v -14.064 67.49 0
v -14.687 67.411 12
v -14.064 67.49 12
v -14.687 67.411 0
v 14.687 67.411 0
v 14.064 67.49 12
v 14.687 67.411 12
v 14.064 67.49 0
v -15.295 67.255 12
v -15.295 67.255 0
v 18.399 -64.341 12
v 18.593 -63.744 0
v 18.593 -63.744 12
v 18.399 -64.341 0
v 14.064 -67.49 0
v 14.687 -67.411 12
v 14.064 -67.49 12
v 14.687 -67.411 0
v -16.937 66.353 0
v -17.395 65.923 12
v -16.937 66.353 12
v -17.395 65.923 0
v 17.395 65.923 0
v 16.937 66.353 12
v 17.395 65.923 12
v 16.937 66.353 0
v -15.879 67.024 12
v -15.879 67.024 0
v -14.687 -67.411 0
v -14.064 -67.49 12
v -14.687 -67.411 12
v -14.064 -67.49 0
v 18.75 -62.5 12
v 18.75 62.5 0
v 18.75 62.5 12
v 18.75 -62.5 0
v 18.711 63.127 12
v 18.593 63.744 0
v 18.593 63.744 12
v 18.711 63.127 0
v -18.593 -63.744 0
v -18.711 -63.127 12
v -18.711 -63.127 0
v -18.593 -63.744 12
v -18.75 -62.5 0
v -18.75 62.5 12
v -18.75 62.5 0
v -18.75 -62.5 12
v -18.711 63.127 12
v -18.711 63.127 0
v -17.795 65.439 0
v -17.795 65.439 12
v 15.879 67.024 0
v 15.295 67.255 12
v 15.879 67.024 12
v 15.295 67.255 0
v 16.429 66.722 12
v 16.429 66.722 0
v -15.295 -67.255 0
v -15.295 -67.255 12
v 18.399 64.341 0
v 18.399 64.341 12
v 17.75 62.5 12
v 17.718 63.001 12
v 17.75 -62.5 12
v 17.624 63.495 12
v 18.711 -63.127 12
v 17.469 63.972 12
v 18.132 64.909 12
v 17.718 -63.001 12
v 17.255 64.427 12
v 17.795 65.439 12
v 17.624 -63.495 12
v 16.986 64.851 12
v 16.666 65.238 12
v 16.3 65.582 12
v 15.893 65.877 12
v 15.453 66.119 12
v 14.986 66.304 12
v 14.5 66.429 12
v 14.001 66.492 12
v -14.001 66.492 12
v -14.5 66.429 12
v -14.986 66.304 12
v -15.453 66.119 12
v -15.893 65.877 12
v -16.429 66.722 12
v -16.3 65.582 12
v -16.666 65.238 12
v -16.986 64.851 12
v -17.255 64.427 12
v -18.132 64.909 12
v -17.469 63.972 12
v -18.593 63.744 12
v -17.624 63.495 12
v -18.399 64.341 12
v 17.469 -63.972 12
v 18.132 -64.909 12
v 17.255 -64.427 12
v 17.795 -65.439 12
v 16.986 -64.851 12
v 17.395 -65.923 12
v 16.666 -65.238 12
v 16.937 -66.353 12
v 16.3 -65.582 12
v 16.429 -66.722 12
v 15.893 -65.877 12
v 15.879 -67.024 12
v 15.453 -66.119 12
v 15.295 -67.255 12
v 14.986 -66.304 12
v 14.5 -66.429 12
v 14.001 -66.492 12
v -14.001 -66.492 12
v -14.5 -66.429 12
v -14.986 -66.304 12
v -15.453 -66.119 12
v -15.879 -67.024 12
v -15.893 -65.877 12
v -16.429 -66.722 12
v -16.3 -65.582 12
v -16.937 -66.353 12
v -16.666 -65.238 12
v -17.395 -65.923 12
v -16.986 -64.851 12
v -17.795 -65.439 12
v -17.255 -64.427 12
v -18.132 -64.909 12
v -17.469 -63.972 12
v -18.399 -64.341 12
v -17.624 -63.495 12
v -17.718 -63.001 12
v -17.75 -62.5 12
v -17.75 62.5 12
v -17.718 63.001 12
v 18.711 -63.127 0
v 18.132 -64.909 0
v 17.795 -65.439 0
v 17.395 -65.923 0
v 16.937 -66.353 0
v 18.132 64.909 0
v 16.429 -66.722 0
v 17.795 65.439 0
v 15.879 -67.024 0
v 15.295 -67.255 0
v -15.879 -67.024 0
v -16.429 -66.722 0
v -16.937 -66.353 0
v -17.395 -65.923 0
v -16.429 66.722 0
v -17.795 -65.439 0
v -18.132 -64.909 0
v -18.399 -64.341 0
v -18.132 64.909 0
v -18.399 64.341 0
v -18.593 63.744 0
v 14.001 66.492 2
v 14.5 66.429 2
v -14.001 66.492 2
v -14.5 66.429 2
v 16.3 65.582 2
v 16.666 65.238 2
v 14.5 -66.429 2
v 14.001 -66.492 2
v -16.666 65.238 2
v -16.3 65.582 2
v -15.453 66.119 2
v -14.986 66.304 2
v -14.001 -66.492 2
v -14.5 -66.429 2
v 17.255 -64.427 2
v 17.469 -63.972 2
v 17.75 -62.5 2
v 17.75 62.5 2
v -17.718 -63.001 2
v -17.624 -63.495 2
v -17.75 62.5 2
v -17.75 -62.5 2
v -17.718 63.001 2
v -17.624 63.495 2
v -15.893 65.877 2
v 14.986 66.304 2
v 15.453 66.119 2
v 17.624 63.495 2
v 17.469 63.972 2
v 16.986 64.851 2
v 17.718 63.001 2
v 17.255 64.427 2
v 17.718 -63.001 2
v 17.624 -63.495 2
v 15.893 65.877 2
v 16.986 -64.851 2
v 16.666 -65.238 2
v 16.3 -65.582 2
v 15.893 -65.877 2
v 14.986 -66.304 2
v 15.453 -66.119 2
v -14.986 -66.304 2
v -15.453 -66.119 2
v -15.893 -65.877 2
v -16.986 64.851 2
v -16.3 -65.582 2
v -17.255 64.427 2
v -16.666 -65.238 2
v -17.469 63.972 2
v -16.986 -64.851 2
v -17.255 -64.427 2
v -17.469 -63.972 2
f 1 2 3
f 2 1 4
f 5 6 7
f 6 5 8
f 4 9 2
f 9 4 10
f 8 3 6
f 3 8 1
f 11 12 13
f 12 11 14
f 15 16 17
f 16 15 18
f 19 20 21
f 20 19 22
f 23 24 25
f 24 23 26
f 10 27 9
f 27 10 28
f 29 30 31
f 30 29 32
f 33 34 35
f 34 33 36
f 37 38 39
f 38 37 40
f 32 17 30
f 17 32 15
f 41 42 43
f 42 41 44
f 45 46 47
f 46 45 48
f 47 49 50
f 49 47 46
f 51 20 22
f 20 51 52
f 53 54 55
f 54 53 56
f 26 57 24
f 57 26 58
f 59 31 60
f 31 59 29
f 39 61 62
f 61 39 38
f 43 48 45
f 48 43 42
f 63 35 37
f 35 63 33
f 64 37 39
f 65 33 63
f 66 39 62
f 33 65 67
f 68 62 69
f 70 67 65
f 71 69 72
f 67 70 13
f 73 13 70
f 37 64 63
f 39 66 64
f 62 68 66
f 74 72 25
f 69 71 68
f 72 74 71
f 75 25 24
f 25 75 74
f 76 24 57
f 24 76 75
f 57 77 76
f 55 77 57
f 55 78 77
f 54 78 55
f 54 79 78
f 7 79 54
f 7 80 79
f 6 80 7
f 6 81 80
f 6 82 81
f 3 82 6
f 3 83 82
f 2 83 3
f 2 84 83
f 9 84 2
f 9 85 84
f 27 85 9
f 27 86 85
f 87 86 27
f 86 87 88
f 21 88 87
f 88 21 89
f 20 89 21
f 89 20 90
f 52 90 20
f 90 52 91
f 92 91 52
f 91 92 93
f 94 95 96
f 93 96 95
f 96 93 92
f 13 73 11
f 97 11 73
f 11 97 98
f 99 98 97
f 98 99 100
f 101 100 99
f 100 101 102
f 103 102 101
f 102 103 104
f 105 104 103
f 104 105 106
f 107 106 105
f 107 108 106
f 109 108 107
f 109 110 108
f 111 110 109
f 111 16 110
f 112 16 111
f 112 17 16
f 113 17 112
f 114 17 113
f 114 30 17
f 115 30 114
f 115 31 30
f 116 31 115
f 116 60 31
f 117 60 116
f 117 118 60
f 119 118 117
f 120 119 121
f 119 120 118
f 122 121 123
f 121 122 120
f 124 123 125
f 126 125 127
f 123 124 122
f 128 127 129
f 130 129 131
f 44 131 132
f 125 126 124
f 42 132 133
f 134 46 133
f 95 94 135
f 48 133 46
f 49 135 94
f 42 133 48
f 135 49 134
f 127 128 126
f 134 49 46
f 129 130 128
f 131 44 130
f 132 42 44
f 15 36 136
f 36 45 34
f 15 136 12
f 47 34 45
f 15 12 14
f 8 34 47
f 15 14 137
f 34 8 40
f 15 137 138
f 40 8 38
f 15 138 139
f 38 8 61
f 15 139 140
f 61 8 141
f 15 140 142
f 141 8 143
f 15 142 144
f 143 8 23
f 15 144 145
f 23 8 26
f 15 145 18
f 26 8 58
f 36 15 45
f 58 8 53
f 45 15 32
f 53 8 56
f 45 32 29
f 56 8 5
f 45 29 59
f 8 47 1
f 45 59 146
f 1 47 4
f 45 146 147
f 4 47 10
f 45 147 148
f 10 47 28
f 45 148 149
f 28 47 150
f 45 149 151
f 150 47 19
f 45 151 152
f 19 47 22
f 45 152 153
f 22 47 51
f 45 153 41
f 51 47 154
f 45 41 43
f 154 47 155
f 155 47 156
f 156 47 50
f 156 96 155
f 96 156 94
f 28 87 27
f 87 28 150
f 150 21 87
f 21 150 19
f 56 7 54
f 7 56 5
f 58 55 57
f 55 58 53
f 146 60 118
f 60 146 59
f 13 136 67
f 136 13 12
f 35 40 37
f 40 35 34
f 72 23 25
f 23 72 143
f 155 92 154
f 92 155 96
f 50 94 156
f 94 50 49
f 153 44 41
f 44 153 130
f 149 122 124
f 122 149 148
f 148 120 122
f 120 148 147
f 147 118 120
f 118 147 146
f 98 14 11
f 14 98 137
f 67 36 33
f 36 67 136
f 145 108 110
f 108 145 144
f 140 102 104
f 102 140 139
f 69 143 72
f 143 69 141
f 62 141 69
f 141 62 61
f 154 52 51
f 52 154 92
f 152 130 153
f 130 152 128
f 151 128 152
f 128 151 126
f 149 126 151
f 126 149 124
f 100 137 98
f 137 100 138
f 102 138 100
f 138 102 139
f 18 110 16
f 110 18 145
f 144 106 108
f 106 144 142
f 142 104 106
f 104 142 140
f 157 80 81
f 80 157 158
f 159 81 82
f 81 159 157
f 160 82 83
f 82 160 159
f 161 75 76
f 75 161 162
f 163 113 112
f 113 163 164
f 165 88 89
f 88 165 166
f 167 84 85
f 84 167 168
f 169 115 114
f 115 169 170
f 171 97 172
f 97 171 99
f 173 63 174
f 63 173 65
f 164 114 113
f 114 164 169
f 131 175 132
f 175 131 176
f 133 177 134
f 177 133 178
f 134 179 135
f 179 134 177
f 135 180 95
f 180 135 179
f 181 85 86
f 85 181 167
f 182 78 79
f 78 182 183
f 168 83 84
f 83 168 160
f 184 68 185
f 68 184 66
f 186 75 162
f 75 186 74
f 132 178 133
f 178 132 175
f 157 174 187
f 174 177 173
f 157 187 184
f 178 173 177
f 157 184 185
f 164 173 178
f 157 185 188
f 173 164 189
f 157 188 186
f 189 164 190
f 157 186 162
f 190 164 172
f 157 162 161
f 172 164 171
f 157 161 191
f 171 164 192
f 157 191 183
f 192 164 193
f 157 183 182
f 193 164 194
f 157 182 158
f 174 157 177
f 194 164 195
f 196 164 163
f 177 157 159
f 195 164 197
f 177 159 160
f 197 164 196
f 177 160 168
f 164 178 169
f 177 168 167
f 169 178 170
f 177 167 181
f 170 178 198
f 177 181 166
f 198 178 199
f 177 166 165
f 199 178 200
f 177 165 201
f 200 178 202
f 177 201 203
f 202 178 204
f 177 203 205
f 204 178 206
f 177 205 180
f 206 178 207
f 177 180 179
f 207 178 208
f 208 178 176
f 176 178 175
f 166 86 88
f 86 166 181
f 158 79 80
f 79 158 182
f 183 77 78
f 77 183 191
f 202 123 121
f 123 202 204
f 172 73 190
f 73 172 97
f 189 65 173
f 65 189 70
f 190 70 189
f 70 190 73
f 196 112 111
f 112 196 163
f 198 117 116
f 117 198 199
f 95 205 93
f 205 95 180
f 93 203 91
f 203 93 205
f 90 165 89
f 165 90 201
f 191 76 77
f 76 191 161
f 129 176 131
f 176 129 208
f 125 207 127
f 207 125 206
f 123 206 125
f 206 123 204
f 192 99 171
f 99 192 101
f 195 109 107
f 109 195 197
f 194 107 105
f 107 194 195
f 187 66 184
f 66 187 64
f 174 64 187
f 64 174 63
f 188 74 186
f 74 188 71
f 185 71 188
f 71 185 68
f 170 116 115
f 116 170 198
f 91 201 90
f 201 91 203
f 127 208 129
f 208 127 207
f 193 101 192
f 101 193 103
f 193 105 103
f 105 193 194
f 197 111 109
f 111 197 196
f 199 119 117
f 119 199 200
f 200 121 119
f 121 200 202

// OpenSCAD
$fn = 50;


difference() {
	union() {
		hull() {
			translate(v = [-13.7500000000, 62.5000000000, 0]) {
				cylinder(h = 12, r = 5);
			}
			translate(v = [13.7500000000, 62.5000000000, 0]) {
				cylinder(h = 12, r = 5);
			}
			translate(v = [-13.7500000000, -62.5000000000, 0]) {
				cylinder(h = 12, r = 5);
			}
			translate(v = [13.7500000000, -62.5000000000, 0]) {
				cylinder(h = 12, r = 5);
			}
		}
	}
	union() {
		translate(v = [0, 0, 2]) {
			hull() {
				translate(v = [-13.7500000000, 62.5000000000, 0]) {
					cylinder(h = 10, r = 4);
				}
				translate(v = [13.7500000000, 62.5000000000, 0]) {
					cylinder(h = 10, r = 4);
				}
				translate(v = [-13.7500000000, -62.5000000000, 0]) {
					cylinder(h = 10, r = 4);
				}
				translate(v = [13.7500000000, -62.5000000000, 0]) {
					cylinder(h = 10, r = 4);
				}
			}
		}
	}
}
